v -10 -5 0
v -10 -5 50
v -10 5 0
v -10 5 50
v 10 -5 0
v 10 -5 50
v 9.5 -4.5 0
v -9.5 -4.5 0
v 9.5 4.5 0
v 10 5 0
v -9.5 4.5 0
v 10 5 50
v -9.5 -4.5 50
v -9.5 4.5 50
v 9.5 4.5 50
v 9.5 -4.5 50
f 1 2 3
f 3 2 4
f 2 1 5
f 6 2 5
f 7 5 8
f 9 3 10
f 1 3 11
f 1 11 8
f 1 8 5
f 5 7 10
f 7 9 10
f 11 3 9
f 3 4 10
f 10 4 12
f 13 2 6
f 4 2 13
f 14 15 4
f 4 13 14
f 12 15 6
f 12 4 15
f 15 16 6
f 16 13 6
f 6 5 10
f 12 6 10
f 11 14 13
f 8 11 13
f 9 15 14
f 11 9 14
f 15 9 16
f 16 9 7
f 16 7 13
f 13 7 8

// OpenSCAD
epaisseur = 0.5;
longueur_col = 5;
largeur_col = 5;

module hollow_cube(x,y,z,epaisseur){
	difference(){
		cube([x,y,z], center=true);
		cube([x-2*epaisseur,y-2*epaisseur,z+epaisseur], center=true);
	}
}

module x(){
	hypotenuse = ceil(sqrt(pow((longueur_col-2*epaisseur),2) + pow((largeur_col-2*epaisseur),2)));
	angle = 45;
	translate([0,0,2.5]) rotate([0,0,angle]) cube([hypotenuse,epaisseur,5],center = true);
	translate([0,0,2.5]) rotate([0,0,-angle]) cube([hypotenuse,epaisseur,5],center = true);
}

module y(){
	hypotenuse = ceil(sqrt(pow((longueur_col-2*epaisseur),2) + pow((largeur_col-2*epaisseur),2)));
	angle = 45;
	translate([0,0,2.5]) rotate([0,0,angle]) cube([hypotenuse,epaisseur,5],center = true);
	rotate([0,0,3*angle]) cube([hypotenuse/2,epaisseur,5]);
}

module calibration_base(longueur,largeur,hauteur){
	union(){
		hollow_cube(longueur,largeur,hauteur,epaisseur);
		translate([-(longueur-longueur_col)/2, (largeur-largeur_col)/2, 0]) hollow_cube(longueur_col,largeur_col,hauteur,epaisseur);
		translate([-(longueur-longueur_col)/2, -(largeur-largeur_col)/2, 0]) hollow_cube(longueur_col,largeur_col,hauteur,epaisseur);
		translate([(longueur-longueur_col)/2, -(largeur-largeur_col)/2, 0]) hollow_cube(longueur_col,largeur_col,hauteur,epaisseur);
		translate([-(longueur-longueur_col)/2,(largeur-largeur_col)/2,-hauteur/2]) y();
		translate([(longueur-longueur_col)/2,-(largeur-largeur_col)/2,-hauteur/2]) x();
	}
}

module calibration_1(longueur,largeur,hauteur){
	translate([0,0,hauteur/2]) hollow_cube(longueur,largeur,hauteur,epaisseur);
	// hypotenuse = ceil(sqrt(pow((longueur-2*epaisseur),2) + pow((largeur-2*epaisseur),2)));
	// epaisseur_hypo = epaisseur;	
	// hauteur_diag = 5;

	// angleZ = atan(largeur/longueur);
	// union(){
	// 	translate([0,0,hauteur_diag/2]) rotate([0,0,angleZ]) cube([hypotenuse,epaisseur_hypo,hauteur_diag],center = true);
	// 	translate([0,0,hauteur_diag/2]) rotate([0,0,-angleZ]) cube([hypotenuse,epaisseur_hypo,hauteur_diag],center = true);
	// 	translate([0,0,hauteur_diag/2]) rotate([0,0,0]) cube([longueur,epaisseur_hypo,hauteur_diag],center = true);
	// 	translate([0,0,hauteur_diag/2]) rotate([0,0,90]) cube([largeur,epaisseur_hypo,hauteur_diag],center = true);

	// 	translate([0,0,hauteur-hauteur_diag/2]) rotate([0,0,90]) cube([largeur,epaisseur_hypo,hauteur_diag],center = true);
	// 	translate([0,(largeur-hauteur_diag)/2,hauteur/2]) rotate([0,90,90]) cube([hauteur,epaisseur_hypo,hauteur_diag],center = true);
	// 	translate([0,-(largeur-hauteur_diag)/2,hauteur/2]) rotate([0,90,90]) cube([hauteur,epaisseur_hypo,hauteur_diag],center = true);
	// }
}

module calibration_2(longueur,largeur,hauteur){
	calibration_base(longueur,largeur,hauteur);
	hypotenuse = ceil(sqrt(pow((longueur-longueur_col),2) + pow((largeur-largeur_col),2)));
	epaisseur_hypo = sqrt(pow((longueur_col-2*epaisseur),2) + pow((largeur_col-2*epaisseur),2));
	angle = 45;
	
	difference(){
		translate([0, 0, -hauteur/2]) 
		union(){
			translate([0,0,2.5]) rotate([0,0,angle]) cube([hypotenuse,epaisseur_hypo,5],center = true);
			translate([0,0,2.5]) rotate([0,0,-angle]) cube([hypotenuse,epaisseur_hypo,5],center = true);
			translate([(longueur-longueur_col)/2, (largeur-largeur_col)/2, 2.5]) cube([longueur_col,largeur_col,5], center=true);
		}
		translate([-(longueur-longueur_col)/2, (largeur-largeur_col)/2, -hauteur/2]) cube([longueur_col,largeur_col,hauteur], center=true);
		translate([-(longueur-longueur_col)/2, -(largeur-largeur_col)/2, -hauteur/2]) cube([longueur_col,largeur_col,hauteur], center=true);
		translate([(longueur-longueur_col)/2, -(largeur-largeur_col)/2, -hauteur/2]) cube([longueur_col,largeur_col,hauteur], center=true);
	}
}

module calibration_3(longueur,largeur,hauteur){
	calibration_base(longueur,largeur,hauteur);
	difference(){
		translate([0,0,-(hauteur-epaisseur)/2]) cube([longueur,largeur,epaisseur], center=true);
		translate([-(longueur-longueur_col)/2, (largeur-largeur_col)/2, -hauteur/2]) cube([longueur_col,largeur_col,hauteur], center=true);
		translate([-(longueur-longueur_col)/2, -(largeur-largeur_col)/2, -hauteur/2]) cube([longueur_col,largeur_col,hauteur], center=true);
		translate([(longueur-longueur_col)/2, -(largeur-largeur_col)/2, -hauteur/2]) cube([longueur_col,largeur_col,hauteur], center=true);
	}
}

calibration_1(20,10,50);

//calibration_2(30,30,10);
